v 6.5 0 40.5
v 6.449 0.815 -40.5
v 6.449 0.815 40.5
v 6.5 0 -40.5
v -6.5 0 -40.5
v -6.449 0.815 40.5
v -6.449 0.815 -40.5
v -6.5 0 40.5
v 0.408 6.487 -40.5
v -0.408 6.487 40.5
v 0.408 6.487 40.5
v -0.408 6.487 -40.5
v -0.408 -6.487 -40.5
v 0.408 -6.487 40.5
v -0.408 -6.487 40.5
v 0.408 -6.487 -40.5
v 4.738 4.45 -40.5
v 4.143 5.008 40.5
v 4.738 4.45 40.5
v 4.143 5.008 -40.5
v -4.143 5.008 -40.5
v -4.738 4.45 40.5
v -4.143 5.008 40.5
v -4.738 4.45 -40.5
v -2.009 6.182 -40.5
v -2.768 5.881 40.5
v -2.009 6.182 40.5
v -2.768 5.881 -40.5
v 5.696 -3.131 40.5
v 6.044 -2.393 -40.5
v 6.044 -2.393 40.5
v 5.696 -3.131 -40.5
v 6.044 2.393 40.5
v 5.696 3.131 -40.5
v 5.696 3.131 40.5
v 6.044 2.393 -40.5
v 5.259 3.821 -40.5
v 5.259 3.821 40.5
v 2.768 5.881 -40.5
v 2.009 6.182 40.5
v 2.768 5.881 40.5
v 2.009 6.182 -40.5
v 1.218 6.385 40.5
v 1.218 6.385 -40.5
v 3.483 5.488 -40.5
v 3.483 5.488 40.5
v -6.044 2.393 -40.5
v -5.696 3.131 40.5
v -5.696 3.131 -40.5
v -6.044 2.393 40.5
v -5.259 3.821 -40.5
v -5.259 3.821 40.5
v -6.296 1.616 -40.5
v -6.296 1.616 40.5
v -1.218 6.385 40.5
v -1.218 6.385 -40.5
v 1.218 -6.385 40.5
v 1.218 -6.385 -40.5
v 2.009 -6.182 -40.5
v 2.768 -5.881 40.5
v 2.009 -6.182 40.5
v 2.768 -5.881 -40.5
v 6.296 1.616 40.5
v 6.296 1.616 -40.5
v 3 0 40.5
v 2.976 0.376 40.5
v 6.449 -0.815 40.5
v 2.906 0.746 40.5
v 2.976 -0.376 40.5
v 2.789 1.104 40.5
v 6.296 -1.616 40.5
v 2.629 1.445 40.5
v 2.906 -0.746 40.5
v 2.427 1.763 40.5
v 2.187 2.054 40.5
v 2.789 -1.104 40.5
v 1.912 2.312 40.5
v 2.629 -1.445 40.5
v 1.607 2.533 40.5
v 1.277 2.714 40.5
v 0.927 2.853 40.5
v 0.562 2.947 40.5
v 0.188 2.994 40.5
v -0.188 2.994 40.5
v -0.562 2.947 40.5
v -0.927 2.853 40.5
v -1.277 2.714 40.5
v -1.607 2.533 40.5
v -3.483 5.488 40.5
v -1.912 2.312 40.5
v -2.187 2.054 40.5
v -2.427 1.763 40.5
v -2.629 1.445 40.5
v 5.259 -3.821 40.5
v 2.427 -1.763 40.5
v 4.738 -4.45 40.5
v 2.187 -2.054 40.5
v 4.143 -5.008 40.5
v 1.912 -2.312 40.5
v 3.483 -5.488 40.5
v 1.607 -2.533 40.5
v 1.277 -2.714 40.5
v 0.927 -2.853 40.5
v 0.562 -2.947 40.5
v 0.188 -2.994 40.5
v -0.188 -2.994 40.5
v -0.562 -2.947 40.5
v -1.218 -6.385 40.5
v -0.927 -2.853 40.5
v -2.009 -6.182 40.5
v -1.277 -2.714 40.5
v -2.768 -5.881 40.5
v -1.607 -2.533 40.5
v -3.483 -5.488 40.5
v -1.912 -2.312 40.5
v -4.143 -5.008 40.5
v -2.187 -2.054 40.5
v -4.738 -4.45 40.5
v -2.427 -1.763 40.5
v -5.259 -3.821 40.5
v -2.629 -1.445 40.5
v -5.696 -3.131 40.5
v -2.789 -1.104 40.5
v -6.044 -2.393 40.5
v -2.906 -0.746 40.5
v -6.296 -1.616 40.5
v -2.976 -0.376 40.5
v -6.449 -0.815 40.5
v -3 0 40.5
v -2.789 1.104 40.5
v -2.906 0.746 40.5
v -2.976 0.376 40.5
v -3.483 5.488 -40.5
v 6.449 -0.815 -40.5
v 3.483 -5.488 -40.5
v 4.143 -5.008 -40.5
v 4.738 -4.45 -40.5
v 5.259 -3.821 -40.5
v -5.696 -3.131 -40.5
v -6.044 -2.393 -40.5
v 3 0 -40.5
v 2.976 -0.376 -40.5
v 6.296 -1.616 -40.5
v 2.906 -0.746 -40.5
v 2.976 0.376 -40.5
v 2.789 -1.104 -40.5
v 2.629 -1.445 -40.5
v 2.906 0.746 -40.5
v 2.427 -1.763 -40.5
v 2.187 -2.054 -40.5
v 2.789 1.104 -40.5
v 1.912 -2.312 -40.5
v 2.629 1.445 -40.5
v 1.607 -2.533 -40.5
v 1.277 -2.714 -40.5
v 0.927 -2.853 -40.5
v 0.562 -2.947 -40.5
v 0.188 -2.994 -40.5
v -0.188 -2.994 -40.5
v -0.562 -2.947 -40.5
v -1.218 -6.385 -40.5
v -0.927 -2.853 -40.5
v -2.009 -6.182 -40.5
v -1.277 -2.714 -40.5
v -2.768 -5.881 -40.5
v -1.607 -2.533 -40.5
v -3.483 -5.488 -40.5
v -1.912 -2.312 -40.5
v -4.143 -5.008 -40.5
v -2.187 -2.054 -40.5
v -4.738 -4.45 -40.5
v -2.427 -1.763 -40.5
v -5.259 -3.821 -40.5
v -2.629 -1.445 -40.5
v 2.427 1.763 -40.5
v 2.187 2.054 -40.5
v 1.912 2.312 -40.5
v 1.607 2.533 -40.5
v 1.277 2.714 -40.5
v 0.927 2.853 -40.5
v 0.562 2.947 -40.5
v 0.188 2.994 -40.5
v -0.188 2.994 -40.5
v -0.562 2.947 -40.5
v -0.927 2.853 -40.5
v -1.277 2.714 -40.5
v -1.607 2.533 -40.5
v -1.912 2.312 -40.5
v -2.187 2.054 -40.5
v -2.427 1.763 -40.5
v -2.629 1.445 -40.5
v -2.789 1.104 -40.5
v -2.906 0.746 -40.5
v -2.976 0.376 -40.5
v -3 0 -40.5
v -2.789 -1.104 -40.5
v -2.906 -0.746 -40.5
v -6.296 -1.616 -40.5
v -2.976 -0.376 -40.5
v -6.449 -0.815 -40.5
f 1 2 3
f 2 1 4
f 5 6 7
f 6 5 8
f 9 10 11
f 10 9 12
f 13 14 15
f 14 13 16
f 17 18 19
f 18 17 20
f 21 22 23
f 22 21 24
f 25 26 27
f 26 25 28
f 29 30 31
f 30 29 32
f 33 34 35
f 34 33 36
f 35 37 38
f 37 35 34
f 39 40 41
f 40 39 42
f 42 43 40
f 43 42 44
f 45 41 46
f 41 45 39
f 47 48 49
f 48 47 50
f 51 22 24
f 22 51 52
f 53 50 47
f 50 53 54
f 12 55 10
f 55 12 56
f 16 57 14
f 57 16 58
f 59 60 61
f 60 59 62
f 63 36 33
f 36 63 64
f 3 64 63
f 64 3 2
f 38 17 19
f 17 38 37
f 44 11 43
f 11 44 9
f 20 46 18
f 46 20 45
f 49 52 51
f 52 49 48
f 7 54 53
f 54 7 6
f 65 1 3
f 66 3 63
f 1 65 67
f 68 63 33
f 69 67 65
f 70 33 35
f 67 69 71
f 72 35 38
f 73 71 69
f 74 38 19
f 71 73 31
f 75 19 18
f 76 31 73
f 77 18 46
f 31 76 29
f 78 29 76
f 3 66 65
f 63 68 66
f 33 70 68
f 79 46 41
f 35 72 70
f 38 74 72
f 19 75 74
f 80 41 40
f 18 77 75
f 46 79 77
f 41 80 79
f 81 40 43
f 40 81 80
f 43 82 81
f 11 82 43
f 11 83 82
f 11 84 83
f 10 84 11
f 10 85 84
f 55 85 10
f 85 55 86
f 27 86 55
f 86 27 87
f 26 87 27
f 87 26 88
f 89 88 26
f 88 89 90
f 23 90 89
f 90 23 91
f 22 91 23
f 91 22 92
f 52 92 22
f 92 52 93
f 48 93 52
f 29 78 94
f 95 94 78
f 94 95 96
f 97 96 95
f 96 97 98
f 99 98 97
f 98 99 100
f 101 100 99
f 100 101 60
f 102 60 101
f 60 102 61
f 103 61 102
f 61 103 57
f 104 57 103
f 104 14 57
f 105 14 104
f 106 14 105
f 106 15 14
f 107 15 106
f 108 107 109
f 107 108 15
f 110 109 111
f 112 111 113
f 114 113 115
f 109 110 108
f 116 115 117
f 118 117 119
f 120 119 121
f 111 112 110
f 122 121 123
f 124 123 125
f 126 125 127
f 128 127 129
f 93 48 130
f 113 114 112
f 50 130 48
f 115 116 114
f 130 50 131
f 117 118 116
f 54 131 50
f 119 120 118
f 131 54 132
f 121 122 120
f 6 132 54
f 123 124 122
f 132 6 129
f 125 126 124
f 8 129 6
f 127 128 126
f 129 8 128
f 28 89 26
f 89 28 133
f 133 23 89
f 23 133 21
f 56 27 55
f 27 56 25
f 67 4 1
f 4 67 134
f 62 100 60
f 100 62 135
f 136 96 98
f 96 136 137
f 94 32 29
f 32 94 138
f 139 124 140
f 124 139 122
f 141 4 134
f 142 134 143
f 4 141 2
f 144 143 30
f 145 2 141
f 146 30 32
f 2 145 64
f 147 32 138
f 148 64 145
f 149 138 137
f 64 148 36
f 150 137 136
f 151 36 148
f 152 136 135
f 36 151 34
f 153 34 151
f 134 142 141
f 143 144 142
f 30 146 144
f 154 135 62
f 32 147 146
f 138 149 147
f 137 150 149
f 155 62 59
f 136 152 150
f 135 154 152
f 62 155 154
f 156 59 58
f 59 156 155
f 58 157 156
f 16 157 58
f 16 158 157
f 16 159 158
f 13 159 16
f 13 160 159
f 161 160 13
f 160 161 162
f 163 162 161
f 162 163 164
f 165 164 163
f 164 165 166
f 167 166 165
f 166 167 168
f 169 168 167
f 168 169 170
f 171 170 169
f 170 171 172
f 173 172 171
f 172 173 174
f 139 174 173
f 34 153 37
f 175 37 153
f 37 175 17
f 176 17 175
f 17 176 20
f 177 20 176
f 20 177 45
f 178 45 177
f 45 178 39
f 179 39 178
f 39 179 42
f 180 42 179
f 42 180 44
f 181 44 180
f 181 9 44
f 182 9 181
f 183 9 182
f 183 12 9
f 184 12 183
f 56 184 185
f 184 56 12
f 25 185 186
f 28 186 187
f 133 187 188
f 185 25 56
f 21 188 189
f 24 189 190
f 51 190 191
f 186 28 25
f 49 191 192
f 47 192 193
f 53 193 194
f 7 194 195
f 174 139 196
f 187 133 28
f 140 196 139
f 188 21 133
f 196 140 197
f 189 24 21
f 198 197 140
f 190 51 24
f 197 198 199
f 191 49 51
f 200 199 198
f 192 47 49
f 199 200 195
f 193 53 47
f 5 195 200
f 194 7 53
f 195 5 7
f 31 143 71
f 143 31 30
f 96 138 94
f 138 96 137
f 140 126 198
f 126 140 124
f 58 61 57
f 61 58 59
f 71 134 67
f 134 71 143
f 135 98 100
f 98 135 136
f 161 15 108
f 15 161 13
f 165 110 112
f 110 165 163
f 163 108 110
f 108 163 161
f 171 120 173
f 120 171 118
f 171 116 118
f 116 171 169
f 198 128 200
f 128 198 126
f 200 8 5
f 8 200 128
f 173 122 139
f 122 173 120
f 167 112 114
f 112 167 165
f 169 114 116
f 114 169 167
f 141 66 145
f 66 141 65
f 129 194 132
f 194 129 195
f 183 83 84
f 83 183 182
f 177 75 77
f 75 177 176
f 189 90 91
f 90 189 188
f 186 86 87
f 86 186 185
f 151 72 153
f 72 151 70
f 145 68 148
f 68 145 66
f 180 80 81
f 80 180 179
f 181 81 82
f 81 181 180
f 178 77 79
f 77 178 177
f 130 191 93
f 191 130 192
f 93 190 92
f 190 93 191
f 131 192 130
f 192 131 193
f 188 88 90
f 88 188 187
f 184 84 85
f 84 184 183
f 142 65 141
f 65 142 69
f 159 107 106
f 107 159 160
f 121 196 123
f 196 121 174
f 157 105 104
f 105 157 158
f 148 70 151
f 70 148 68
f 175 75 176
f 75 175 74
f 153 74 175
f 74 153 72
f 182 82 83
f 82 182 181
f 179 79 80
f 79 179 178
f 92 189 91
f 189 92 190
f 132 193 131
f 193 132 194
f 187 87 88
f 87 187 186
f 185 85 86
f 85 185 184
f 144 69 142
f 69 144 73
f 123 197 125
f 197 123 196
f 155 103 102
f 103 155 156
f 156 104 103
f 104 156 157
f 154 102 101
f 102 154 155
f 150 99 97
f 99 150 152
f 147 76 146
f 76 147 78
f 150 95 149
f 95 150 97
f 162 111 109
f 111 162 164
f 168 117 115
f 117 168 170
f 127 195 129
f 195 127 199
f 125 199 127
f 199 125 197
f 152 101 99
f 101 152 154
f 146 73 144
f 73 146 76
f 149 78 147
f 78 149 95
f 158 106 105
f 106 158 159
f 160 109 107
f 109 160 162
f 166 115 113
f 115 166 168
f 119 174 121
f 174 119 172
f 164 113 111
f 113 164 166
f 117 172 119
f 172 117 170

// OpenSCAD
$fn = 50;


difference() {
	union() {
		translate(v = [0, 0, -40.5000000000]) {
			cylinder(h = 81, r = 6.5000000000);
		}
	}
	union() {
		translate(v = [0, 0, -100.0000000000]) {
			cylinder(h = 200, r = 3);
		}
	}
}
